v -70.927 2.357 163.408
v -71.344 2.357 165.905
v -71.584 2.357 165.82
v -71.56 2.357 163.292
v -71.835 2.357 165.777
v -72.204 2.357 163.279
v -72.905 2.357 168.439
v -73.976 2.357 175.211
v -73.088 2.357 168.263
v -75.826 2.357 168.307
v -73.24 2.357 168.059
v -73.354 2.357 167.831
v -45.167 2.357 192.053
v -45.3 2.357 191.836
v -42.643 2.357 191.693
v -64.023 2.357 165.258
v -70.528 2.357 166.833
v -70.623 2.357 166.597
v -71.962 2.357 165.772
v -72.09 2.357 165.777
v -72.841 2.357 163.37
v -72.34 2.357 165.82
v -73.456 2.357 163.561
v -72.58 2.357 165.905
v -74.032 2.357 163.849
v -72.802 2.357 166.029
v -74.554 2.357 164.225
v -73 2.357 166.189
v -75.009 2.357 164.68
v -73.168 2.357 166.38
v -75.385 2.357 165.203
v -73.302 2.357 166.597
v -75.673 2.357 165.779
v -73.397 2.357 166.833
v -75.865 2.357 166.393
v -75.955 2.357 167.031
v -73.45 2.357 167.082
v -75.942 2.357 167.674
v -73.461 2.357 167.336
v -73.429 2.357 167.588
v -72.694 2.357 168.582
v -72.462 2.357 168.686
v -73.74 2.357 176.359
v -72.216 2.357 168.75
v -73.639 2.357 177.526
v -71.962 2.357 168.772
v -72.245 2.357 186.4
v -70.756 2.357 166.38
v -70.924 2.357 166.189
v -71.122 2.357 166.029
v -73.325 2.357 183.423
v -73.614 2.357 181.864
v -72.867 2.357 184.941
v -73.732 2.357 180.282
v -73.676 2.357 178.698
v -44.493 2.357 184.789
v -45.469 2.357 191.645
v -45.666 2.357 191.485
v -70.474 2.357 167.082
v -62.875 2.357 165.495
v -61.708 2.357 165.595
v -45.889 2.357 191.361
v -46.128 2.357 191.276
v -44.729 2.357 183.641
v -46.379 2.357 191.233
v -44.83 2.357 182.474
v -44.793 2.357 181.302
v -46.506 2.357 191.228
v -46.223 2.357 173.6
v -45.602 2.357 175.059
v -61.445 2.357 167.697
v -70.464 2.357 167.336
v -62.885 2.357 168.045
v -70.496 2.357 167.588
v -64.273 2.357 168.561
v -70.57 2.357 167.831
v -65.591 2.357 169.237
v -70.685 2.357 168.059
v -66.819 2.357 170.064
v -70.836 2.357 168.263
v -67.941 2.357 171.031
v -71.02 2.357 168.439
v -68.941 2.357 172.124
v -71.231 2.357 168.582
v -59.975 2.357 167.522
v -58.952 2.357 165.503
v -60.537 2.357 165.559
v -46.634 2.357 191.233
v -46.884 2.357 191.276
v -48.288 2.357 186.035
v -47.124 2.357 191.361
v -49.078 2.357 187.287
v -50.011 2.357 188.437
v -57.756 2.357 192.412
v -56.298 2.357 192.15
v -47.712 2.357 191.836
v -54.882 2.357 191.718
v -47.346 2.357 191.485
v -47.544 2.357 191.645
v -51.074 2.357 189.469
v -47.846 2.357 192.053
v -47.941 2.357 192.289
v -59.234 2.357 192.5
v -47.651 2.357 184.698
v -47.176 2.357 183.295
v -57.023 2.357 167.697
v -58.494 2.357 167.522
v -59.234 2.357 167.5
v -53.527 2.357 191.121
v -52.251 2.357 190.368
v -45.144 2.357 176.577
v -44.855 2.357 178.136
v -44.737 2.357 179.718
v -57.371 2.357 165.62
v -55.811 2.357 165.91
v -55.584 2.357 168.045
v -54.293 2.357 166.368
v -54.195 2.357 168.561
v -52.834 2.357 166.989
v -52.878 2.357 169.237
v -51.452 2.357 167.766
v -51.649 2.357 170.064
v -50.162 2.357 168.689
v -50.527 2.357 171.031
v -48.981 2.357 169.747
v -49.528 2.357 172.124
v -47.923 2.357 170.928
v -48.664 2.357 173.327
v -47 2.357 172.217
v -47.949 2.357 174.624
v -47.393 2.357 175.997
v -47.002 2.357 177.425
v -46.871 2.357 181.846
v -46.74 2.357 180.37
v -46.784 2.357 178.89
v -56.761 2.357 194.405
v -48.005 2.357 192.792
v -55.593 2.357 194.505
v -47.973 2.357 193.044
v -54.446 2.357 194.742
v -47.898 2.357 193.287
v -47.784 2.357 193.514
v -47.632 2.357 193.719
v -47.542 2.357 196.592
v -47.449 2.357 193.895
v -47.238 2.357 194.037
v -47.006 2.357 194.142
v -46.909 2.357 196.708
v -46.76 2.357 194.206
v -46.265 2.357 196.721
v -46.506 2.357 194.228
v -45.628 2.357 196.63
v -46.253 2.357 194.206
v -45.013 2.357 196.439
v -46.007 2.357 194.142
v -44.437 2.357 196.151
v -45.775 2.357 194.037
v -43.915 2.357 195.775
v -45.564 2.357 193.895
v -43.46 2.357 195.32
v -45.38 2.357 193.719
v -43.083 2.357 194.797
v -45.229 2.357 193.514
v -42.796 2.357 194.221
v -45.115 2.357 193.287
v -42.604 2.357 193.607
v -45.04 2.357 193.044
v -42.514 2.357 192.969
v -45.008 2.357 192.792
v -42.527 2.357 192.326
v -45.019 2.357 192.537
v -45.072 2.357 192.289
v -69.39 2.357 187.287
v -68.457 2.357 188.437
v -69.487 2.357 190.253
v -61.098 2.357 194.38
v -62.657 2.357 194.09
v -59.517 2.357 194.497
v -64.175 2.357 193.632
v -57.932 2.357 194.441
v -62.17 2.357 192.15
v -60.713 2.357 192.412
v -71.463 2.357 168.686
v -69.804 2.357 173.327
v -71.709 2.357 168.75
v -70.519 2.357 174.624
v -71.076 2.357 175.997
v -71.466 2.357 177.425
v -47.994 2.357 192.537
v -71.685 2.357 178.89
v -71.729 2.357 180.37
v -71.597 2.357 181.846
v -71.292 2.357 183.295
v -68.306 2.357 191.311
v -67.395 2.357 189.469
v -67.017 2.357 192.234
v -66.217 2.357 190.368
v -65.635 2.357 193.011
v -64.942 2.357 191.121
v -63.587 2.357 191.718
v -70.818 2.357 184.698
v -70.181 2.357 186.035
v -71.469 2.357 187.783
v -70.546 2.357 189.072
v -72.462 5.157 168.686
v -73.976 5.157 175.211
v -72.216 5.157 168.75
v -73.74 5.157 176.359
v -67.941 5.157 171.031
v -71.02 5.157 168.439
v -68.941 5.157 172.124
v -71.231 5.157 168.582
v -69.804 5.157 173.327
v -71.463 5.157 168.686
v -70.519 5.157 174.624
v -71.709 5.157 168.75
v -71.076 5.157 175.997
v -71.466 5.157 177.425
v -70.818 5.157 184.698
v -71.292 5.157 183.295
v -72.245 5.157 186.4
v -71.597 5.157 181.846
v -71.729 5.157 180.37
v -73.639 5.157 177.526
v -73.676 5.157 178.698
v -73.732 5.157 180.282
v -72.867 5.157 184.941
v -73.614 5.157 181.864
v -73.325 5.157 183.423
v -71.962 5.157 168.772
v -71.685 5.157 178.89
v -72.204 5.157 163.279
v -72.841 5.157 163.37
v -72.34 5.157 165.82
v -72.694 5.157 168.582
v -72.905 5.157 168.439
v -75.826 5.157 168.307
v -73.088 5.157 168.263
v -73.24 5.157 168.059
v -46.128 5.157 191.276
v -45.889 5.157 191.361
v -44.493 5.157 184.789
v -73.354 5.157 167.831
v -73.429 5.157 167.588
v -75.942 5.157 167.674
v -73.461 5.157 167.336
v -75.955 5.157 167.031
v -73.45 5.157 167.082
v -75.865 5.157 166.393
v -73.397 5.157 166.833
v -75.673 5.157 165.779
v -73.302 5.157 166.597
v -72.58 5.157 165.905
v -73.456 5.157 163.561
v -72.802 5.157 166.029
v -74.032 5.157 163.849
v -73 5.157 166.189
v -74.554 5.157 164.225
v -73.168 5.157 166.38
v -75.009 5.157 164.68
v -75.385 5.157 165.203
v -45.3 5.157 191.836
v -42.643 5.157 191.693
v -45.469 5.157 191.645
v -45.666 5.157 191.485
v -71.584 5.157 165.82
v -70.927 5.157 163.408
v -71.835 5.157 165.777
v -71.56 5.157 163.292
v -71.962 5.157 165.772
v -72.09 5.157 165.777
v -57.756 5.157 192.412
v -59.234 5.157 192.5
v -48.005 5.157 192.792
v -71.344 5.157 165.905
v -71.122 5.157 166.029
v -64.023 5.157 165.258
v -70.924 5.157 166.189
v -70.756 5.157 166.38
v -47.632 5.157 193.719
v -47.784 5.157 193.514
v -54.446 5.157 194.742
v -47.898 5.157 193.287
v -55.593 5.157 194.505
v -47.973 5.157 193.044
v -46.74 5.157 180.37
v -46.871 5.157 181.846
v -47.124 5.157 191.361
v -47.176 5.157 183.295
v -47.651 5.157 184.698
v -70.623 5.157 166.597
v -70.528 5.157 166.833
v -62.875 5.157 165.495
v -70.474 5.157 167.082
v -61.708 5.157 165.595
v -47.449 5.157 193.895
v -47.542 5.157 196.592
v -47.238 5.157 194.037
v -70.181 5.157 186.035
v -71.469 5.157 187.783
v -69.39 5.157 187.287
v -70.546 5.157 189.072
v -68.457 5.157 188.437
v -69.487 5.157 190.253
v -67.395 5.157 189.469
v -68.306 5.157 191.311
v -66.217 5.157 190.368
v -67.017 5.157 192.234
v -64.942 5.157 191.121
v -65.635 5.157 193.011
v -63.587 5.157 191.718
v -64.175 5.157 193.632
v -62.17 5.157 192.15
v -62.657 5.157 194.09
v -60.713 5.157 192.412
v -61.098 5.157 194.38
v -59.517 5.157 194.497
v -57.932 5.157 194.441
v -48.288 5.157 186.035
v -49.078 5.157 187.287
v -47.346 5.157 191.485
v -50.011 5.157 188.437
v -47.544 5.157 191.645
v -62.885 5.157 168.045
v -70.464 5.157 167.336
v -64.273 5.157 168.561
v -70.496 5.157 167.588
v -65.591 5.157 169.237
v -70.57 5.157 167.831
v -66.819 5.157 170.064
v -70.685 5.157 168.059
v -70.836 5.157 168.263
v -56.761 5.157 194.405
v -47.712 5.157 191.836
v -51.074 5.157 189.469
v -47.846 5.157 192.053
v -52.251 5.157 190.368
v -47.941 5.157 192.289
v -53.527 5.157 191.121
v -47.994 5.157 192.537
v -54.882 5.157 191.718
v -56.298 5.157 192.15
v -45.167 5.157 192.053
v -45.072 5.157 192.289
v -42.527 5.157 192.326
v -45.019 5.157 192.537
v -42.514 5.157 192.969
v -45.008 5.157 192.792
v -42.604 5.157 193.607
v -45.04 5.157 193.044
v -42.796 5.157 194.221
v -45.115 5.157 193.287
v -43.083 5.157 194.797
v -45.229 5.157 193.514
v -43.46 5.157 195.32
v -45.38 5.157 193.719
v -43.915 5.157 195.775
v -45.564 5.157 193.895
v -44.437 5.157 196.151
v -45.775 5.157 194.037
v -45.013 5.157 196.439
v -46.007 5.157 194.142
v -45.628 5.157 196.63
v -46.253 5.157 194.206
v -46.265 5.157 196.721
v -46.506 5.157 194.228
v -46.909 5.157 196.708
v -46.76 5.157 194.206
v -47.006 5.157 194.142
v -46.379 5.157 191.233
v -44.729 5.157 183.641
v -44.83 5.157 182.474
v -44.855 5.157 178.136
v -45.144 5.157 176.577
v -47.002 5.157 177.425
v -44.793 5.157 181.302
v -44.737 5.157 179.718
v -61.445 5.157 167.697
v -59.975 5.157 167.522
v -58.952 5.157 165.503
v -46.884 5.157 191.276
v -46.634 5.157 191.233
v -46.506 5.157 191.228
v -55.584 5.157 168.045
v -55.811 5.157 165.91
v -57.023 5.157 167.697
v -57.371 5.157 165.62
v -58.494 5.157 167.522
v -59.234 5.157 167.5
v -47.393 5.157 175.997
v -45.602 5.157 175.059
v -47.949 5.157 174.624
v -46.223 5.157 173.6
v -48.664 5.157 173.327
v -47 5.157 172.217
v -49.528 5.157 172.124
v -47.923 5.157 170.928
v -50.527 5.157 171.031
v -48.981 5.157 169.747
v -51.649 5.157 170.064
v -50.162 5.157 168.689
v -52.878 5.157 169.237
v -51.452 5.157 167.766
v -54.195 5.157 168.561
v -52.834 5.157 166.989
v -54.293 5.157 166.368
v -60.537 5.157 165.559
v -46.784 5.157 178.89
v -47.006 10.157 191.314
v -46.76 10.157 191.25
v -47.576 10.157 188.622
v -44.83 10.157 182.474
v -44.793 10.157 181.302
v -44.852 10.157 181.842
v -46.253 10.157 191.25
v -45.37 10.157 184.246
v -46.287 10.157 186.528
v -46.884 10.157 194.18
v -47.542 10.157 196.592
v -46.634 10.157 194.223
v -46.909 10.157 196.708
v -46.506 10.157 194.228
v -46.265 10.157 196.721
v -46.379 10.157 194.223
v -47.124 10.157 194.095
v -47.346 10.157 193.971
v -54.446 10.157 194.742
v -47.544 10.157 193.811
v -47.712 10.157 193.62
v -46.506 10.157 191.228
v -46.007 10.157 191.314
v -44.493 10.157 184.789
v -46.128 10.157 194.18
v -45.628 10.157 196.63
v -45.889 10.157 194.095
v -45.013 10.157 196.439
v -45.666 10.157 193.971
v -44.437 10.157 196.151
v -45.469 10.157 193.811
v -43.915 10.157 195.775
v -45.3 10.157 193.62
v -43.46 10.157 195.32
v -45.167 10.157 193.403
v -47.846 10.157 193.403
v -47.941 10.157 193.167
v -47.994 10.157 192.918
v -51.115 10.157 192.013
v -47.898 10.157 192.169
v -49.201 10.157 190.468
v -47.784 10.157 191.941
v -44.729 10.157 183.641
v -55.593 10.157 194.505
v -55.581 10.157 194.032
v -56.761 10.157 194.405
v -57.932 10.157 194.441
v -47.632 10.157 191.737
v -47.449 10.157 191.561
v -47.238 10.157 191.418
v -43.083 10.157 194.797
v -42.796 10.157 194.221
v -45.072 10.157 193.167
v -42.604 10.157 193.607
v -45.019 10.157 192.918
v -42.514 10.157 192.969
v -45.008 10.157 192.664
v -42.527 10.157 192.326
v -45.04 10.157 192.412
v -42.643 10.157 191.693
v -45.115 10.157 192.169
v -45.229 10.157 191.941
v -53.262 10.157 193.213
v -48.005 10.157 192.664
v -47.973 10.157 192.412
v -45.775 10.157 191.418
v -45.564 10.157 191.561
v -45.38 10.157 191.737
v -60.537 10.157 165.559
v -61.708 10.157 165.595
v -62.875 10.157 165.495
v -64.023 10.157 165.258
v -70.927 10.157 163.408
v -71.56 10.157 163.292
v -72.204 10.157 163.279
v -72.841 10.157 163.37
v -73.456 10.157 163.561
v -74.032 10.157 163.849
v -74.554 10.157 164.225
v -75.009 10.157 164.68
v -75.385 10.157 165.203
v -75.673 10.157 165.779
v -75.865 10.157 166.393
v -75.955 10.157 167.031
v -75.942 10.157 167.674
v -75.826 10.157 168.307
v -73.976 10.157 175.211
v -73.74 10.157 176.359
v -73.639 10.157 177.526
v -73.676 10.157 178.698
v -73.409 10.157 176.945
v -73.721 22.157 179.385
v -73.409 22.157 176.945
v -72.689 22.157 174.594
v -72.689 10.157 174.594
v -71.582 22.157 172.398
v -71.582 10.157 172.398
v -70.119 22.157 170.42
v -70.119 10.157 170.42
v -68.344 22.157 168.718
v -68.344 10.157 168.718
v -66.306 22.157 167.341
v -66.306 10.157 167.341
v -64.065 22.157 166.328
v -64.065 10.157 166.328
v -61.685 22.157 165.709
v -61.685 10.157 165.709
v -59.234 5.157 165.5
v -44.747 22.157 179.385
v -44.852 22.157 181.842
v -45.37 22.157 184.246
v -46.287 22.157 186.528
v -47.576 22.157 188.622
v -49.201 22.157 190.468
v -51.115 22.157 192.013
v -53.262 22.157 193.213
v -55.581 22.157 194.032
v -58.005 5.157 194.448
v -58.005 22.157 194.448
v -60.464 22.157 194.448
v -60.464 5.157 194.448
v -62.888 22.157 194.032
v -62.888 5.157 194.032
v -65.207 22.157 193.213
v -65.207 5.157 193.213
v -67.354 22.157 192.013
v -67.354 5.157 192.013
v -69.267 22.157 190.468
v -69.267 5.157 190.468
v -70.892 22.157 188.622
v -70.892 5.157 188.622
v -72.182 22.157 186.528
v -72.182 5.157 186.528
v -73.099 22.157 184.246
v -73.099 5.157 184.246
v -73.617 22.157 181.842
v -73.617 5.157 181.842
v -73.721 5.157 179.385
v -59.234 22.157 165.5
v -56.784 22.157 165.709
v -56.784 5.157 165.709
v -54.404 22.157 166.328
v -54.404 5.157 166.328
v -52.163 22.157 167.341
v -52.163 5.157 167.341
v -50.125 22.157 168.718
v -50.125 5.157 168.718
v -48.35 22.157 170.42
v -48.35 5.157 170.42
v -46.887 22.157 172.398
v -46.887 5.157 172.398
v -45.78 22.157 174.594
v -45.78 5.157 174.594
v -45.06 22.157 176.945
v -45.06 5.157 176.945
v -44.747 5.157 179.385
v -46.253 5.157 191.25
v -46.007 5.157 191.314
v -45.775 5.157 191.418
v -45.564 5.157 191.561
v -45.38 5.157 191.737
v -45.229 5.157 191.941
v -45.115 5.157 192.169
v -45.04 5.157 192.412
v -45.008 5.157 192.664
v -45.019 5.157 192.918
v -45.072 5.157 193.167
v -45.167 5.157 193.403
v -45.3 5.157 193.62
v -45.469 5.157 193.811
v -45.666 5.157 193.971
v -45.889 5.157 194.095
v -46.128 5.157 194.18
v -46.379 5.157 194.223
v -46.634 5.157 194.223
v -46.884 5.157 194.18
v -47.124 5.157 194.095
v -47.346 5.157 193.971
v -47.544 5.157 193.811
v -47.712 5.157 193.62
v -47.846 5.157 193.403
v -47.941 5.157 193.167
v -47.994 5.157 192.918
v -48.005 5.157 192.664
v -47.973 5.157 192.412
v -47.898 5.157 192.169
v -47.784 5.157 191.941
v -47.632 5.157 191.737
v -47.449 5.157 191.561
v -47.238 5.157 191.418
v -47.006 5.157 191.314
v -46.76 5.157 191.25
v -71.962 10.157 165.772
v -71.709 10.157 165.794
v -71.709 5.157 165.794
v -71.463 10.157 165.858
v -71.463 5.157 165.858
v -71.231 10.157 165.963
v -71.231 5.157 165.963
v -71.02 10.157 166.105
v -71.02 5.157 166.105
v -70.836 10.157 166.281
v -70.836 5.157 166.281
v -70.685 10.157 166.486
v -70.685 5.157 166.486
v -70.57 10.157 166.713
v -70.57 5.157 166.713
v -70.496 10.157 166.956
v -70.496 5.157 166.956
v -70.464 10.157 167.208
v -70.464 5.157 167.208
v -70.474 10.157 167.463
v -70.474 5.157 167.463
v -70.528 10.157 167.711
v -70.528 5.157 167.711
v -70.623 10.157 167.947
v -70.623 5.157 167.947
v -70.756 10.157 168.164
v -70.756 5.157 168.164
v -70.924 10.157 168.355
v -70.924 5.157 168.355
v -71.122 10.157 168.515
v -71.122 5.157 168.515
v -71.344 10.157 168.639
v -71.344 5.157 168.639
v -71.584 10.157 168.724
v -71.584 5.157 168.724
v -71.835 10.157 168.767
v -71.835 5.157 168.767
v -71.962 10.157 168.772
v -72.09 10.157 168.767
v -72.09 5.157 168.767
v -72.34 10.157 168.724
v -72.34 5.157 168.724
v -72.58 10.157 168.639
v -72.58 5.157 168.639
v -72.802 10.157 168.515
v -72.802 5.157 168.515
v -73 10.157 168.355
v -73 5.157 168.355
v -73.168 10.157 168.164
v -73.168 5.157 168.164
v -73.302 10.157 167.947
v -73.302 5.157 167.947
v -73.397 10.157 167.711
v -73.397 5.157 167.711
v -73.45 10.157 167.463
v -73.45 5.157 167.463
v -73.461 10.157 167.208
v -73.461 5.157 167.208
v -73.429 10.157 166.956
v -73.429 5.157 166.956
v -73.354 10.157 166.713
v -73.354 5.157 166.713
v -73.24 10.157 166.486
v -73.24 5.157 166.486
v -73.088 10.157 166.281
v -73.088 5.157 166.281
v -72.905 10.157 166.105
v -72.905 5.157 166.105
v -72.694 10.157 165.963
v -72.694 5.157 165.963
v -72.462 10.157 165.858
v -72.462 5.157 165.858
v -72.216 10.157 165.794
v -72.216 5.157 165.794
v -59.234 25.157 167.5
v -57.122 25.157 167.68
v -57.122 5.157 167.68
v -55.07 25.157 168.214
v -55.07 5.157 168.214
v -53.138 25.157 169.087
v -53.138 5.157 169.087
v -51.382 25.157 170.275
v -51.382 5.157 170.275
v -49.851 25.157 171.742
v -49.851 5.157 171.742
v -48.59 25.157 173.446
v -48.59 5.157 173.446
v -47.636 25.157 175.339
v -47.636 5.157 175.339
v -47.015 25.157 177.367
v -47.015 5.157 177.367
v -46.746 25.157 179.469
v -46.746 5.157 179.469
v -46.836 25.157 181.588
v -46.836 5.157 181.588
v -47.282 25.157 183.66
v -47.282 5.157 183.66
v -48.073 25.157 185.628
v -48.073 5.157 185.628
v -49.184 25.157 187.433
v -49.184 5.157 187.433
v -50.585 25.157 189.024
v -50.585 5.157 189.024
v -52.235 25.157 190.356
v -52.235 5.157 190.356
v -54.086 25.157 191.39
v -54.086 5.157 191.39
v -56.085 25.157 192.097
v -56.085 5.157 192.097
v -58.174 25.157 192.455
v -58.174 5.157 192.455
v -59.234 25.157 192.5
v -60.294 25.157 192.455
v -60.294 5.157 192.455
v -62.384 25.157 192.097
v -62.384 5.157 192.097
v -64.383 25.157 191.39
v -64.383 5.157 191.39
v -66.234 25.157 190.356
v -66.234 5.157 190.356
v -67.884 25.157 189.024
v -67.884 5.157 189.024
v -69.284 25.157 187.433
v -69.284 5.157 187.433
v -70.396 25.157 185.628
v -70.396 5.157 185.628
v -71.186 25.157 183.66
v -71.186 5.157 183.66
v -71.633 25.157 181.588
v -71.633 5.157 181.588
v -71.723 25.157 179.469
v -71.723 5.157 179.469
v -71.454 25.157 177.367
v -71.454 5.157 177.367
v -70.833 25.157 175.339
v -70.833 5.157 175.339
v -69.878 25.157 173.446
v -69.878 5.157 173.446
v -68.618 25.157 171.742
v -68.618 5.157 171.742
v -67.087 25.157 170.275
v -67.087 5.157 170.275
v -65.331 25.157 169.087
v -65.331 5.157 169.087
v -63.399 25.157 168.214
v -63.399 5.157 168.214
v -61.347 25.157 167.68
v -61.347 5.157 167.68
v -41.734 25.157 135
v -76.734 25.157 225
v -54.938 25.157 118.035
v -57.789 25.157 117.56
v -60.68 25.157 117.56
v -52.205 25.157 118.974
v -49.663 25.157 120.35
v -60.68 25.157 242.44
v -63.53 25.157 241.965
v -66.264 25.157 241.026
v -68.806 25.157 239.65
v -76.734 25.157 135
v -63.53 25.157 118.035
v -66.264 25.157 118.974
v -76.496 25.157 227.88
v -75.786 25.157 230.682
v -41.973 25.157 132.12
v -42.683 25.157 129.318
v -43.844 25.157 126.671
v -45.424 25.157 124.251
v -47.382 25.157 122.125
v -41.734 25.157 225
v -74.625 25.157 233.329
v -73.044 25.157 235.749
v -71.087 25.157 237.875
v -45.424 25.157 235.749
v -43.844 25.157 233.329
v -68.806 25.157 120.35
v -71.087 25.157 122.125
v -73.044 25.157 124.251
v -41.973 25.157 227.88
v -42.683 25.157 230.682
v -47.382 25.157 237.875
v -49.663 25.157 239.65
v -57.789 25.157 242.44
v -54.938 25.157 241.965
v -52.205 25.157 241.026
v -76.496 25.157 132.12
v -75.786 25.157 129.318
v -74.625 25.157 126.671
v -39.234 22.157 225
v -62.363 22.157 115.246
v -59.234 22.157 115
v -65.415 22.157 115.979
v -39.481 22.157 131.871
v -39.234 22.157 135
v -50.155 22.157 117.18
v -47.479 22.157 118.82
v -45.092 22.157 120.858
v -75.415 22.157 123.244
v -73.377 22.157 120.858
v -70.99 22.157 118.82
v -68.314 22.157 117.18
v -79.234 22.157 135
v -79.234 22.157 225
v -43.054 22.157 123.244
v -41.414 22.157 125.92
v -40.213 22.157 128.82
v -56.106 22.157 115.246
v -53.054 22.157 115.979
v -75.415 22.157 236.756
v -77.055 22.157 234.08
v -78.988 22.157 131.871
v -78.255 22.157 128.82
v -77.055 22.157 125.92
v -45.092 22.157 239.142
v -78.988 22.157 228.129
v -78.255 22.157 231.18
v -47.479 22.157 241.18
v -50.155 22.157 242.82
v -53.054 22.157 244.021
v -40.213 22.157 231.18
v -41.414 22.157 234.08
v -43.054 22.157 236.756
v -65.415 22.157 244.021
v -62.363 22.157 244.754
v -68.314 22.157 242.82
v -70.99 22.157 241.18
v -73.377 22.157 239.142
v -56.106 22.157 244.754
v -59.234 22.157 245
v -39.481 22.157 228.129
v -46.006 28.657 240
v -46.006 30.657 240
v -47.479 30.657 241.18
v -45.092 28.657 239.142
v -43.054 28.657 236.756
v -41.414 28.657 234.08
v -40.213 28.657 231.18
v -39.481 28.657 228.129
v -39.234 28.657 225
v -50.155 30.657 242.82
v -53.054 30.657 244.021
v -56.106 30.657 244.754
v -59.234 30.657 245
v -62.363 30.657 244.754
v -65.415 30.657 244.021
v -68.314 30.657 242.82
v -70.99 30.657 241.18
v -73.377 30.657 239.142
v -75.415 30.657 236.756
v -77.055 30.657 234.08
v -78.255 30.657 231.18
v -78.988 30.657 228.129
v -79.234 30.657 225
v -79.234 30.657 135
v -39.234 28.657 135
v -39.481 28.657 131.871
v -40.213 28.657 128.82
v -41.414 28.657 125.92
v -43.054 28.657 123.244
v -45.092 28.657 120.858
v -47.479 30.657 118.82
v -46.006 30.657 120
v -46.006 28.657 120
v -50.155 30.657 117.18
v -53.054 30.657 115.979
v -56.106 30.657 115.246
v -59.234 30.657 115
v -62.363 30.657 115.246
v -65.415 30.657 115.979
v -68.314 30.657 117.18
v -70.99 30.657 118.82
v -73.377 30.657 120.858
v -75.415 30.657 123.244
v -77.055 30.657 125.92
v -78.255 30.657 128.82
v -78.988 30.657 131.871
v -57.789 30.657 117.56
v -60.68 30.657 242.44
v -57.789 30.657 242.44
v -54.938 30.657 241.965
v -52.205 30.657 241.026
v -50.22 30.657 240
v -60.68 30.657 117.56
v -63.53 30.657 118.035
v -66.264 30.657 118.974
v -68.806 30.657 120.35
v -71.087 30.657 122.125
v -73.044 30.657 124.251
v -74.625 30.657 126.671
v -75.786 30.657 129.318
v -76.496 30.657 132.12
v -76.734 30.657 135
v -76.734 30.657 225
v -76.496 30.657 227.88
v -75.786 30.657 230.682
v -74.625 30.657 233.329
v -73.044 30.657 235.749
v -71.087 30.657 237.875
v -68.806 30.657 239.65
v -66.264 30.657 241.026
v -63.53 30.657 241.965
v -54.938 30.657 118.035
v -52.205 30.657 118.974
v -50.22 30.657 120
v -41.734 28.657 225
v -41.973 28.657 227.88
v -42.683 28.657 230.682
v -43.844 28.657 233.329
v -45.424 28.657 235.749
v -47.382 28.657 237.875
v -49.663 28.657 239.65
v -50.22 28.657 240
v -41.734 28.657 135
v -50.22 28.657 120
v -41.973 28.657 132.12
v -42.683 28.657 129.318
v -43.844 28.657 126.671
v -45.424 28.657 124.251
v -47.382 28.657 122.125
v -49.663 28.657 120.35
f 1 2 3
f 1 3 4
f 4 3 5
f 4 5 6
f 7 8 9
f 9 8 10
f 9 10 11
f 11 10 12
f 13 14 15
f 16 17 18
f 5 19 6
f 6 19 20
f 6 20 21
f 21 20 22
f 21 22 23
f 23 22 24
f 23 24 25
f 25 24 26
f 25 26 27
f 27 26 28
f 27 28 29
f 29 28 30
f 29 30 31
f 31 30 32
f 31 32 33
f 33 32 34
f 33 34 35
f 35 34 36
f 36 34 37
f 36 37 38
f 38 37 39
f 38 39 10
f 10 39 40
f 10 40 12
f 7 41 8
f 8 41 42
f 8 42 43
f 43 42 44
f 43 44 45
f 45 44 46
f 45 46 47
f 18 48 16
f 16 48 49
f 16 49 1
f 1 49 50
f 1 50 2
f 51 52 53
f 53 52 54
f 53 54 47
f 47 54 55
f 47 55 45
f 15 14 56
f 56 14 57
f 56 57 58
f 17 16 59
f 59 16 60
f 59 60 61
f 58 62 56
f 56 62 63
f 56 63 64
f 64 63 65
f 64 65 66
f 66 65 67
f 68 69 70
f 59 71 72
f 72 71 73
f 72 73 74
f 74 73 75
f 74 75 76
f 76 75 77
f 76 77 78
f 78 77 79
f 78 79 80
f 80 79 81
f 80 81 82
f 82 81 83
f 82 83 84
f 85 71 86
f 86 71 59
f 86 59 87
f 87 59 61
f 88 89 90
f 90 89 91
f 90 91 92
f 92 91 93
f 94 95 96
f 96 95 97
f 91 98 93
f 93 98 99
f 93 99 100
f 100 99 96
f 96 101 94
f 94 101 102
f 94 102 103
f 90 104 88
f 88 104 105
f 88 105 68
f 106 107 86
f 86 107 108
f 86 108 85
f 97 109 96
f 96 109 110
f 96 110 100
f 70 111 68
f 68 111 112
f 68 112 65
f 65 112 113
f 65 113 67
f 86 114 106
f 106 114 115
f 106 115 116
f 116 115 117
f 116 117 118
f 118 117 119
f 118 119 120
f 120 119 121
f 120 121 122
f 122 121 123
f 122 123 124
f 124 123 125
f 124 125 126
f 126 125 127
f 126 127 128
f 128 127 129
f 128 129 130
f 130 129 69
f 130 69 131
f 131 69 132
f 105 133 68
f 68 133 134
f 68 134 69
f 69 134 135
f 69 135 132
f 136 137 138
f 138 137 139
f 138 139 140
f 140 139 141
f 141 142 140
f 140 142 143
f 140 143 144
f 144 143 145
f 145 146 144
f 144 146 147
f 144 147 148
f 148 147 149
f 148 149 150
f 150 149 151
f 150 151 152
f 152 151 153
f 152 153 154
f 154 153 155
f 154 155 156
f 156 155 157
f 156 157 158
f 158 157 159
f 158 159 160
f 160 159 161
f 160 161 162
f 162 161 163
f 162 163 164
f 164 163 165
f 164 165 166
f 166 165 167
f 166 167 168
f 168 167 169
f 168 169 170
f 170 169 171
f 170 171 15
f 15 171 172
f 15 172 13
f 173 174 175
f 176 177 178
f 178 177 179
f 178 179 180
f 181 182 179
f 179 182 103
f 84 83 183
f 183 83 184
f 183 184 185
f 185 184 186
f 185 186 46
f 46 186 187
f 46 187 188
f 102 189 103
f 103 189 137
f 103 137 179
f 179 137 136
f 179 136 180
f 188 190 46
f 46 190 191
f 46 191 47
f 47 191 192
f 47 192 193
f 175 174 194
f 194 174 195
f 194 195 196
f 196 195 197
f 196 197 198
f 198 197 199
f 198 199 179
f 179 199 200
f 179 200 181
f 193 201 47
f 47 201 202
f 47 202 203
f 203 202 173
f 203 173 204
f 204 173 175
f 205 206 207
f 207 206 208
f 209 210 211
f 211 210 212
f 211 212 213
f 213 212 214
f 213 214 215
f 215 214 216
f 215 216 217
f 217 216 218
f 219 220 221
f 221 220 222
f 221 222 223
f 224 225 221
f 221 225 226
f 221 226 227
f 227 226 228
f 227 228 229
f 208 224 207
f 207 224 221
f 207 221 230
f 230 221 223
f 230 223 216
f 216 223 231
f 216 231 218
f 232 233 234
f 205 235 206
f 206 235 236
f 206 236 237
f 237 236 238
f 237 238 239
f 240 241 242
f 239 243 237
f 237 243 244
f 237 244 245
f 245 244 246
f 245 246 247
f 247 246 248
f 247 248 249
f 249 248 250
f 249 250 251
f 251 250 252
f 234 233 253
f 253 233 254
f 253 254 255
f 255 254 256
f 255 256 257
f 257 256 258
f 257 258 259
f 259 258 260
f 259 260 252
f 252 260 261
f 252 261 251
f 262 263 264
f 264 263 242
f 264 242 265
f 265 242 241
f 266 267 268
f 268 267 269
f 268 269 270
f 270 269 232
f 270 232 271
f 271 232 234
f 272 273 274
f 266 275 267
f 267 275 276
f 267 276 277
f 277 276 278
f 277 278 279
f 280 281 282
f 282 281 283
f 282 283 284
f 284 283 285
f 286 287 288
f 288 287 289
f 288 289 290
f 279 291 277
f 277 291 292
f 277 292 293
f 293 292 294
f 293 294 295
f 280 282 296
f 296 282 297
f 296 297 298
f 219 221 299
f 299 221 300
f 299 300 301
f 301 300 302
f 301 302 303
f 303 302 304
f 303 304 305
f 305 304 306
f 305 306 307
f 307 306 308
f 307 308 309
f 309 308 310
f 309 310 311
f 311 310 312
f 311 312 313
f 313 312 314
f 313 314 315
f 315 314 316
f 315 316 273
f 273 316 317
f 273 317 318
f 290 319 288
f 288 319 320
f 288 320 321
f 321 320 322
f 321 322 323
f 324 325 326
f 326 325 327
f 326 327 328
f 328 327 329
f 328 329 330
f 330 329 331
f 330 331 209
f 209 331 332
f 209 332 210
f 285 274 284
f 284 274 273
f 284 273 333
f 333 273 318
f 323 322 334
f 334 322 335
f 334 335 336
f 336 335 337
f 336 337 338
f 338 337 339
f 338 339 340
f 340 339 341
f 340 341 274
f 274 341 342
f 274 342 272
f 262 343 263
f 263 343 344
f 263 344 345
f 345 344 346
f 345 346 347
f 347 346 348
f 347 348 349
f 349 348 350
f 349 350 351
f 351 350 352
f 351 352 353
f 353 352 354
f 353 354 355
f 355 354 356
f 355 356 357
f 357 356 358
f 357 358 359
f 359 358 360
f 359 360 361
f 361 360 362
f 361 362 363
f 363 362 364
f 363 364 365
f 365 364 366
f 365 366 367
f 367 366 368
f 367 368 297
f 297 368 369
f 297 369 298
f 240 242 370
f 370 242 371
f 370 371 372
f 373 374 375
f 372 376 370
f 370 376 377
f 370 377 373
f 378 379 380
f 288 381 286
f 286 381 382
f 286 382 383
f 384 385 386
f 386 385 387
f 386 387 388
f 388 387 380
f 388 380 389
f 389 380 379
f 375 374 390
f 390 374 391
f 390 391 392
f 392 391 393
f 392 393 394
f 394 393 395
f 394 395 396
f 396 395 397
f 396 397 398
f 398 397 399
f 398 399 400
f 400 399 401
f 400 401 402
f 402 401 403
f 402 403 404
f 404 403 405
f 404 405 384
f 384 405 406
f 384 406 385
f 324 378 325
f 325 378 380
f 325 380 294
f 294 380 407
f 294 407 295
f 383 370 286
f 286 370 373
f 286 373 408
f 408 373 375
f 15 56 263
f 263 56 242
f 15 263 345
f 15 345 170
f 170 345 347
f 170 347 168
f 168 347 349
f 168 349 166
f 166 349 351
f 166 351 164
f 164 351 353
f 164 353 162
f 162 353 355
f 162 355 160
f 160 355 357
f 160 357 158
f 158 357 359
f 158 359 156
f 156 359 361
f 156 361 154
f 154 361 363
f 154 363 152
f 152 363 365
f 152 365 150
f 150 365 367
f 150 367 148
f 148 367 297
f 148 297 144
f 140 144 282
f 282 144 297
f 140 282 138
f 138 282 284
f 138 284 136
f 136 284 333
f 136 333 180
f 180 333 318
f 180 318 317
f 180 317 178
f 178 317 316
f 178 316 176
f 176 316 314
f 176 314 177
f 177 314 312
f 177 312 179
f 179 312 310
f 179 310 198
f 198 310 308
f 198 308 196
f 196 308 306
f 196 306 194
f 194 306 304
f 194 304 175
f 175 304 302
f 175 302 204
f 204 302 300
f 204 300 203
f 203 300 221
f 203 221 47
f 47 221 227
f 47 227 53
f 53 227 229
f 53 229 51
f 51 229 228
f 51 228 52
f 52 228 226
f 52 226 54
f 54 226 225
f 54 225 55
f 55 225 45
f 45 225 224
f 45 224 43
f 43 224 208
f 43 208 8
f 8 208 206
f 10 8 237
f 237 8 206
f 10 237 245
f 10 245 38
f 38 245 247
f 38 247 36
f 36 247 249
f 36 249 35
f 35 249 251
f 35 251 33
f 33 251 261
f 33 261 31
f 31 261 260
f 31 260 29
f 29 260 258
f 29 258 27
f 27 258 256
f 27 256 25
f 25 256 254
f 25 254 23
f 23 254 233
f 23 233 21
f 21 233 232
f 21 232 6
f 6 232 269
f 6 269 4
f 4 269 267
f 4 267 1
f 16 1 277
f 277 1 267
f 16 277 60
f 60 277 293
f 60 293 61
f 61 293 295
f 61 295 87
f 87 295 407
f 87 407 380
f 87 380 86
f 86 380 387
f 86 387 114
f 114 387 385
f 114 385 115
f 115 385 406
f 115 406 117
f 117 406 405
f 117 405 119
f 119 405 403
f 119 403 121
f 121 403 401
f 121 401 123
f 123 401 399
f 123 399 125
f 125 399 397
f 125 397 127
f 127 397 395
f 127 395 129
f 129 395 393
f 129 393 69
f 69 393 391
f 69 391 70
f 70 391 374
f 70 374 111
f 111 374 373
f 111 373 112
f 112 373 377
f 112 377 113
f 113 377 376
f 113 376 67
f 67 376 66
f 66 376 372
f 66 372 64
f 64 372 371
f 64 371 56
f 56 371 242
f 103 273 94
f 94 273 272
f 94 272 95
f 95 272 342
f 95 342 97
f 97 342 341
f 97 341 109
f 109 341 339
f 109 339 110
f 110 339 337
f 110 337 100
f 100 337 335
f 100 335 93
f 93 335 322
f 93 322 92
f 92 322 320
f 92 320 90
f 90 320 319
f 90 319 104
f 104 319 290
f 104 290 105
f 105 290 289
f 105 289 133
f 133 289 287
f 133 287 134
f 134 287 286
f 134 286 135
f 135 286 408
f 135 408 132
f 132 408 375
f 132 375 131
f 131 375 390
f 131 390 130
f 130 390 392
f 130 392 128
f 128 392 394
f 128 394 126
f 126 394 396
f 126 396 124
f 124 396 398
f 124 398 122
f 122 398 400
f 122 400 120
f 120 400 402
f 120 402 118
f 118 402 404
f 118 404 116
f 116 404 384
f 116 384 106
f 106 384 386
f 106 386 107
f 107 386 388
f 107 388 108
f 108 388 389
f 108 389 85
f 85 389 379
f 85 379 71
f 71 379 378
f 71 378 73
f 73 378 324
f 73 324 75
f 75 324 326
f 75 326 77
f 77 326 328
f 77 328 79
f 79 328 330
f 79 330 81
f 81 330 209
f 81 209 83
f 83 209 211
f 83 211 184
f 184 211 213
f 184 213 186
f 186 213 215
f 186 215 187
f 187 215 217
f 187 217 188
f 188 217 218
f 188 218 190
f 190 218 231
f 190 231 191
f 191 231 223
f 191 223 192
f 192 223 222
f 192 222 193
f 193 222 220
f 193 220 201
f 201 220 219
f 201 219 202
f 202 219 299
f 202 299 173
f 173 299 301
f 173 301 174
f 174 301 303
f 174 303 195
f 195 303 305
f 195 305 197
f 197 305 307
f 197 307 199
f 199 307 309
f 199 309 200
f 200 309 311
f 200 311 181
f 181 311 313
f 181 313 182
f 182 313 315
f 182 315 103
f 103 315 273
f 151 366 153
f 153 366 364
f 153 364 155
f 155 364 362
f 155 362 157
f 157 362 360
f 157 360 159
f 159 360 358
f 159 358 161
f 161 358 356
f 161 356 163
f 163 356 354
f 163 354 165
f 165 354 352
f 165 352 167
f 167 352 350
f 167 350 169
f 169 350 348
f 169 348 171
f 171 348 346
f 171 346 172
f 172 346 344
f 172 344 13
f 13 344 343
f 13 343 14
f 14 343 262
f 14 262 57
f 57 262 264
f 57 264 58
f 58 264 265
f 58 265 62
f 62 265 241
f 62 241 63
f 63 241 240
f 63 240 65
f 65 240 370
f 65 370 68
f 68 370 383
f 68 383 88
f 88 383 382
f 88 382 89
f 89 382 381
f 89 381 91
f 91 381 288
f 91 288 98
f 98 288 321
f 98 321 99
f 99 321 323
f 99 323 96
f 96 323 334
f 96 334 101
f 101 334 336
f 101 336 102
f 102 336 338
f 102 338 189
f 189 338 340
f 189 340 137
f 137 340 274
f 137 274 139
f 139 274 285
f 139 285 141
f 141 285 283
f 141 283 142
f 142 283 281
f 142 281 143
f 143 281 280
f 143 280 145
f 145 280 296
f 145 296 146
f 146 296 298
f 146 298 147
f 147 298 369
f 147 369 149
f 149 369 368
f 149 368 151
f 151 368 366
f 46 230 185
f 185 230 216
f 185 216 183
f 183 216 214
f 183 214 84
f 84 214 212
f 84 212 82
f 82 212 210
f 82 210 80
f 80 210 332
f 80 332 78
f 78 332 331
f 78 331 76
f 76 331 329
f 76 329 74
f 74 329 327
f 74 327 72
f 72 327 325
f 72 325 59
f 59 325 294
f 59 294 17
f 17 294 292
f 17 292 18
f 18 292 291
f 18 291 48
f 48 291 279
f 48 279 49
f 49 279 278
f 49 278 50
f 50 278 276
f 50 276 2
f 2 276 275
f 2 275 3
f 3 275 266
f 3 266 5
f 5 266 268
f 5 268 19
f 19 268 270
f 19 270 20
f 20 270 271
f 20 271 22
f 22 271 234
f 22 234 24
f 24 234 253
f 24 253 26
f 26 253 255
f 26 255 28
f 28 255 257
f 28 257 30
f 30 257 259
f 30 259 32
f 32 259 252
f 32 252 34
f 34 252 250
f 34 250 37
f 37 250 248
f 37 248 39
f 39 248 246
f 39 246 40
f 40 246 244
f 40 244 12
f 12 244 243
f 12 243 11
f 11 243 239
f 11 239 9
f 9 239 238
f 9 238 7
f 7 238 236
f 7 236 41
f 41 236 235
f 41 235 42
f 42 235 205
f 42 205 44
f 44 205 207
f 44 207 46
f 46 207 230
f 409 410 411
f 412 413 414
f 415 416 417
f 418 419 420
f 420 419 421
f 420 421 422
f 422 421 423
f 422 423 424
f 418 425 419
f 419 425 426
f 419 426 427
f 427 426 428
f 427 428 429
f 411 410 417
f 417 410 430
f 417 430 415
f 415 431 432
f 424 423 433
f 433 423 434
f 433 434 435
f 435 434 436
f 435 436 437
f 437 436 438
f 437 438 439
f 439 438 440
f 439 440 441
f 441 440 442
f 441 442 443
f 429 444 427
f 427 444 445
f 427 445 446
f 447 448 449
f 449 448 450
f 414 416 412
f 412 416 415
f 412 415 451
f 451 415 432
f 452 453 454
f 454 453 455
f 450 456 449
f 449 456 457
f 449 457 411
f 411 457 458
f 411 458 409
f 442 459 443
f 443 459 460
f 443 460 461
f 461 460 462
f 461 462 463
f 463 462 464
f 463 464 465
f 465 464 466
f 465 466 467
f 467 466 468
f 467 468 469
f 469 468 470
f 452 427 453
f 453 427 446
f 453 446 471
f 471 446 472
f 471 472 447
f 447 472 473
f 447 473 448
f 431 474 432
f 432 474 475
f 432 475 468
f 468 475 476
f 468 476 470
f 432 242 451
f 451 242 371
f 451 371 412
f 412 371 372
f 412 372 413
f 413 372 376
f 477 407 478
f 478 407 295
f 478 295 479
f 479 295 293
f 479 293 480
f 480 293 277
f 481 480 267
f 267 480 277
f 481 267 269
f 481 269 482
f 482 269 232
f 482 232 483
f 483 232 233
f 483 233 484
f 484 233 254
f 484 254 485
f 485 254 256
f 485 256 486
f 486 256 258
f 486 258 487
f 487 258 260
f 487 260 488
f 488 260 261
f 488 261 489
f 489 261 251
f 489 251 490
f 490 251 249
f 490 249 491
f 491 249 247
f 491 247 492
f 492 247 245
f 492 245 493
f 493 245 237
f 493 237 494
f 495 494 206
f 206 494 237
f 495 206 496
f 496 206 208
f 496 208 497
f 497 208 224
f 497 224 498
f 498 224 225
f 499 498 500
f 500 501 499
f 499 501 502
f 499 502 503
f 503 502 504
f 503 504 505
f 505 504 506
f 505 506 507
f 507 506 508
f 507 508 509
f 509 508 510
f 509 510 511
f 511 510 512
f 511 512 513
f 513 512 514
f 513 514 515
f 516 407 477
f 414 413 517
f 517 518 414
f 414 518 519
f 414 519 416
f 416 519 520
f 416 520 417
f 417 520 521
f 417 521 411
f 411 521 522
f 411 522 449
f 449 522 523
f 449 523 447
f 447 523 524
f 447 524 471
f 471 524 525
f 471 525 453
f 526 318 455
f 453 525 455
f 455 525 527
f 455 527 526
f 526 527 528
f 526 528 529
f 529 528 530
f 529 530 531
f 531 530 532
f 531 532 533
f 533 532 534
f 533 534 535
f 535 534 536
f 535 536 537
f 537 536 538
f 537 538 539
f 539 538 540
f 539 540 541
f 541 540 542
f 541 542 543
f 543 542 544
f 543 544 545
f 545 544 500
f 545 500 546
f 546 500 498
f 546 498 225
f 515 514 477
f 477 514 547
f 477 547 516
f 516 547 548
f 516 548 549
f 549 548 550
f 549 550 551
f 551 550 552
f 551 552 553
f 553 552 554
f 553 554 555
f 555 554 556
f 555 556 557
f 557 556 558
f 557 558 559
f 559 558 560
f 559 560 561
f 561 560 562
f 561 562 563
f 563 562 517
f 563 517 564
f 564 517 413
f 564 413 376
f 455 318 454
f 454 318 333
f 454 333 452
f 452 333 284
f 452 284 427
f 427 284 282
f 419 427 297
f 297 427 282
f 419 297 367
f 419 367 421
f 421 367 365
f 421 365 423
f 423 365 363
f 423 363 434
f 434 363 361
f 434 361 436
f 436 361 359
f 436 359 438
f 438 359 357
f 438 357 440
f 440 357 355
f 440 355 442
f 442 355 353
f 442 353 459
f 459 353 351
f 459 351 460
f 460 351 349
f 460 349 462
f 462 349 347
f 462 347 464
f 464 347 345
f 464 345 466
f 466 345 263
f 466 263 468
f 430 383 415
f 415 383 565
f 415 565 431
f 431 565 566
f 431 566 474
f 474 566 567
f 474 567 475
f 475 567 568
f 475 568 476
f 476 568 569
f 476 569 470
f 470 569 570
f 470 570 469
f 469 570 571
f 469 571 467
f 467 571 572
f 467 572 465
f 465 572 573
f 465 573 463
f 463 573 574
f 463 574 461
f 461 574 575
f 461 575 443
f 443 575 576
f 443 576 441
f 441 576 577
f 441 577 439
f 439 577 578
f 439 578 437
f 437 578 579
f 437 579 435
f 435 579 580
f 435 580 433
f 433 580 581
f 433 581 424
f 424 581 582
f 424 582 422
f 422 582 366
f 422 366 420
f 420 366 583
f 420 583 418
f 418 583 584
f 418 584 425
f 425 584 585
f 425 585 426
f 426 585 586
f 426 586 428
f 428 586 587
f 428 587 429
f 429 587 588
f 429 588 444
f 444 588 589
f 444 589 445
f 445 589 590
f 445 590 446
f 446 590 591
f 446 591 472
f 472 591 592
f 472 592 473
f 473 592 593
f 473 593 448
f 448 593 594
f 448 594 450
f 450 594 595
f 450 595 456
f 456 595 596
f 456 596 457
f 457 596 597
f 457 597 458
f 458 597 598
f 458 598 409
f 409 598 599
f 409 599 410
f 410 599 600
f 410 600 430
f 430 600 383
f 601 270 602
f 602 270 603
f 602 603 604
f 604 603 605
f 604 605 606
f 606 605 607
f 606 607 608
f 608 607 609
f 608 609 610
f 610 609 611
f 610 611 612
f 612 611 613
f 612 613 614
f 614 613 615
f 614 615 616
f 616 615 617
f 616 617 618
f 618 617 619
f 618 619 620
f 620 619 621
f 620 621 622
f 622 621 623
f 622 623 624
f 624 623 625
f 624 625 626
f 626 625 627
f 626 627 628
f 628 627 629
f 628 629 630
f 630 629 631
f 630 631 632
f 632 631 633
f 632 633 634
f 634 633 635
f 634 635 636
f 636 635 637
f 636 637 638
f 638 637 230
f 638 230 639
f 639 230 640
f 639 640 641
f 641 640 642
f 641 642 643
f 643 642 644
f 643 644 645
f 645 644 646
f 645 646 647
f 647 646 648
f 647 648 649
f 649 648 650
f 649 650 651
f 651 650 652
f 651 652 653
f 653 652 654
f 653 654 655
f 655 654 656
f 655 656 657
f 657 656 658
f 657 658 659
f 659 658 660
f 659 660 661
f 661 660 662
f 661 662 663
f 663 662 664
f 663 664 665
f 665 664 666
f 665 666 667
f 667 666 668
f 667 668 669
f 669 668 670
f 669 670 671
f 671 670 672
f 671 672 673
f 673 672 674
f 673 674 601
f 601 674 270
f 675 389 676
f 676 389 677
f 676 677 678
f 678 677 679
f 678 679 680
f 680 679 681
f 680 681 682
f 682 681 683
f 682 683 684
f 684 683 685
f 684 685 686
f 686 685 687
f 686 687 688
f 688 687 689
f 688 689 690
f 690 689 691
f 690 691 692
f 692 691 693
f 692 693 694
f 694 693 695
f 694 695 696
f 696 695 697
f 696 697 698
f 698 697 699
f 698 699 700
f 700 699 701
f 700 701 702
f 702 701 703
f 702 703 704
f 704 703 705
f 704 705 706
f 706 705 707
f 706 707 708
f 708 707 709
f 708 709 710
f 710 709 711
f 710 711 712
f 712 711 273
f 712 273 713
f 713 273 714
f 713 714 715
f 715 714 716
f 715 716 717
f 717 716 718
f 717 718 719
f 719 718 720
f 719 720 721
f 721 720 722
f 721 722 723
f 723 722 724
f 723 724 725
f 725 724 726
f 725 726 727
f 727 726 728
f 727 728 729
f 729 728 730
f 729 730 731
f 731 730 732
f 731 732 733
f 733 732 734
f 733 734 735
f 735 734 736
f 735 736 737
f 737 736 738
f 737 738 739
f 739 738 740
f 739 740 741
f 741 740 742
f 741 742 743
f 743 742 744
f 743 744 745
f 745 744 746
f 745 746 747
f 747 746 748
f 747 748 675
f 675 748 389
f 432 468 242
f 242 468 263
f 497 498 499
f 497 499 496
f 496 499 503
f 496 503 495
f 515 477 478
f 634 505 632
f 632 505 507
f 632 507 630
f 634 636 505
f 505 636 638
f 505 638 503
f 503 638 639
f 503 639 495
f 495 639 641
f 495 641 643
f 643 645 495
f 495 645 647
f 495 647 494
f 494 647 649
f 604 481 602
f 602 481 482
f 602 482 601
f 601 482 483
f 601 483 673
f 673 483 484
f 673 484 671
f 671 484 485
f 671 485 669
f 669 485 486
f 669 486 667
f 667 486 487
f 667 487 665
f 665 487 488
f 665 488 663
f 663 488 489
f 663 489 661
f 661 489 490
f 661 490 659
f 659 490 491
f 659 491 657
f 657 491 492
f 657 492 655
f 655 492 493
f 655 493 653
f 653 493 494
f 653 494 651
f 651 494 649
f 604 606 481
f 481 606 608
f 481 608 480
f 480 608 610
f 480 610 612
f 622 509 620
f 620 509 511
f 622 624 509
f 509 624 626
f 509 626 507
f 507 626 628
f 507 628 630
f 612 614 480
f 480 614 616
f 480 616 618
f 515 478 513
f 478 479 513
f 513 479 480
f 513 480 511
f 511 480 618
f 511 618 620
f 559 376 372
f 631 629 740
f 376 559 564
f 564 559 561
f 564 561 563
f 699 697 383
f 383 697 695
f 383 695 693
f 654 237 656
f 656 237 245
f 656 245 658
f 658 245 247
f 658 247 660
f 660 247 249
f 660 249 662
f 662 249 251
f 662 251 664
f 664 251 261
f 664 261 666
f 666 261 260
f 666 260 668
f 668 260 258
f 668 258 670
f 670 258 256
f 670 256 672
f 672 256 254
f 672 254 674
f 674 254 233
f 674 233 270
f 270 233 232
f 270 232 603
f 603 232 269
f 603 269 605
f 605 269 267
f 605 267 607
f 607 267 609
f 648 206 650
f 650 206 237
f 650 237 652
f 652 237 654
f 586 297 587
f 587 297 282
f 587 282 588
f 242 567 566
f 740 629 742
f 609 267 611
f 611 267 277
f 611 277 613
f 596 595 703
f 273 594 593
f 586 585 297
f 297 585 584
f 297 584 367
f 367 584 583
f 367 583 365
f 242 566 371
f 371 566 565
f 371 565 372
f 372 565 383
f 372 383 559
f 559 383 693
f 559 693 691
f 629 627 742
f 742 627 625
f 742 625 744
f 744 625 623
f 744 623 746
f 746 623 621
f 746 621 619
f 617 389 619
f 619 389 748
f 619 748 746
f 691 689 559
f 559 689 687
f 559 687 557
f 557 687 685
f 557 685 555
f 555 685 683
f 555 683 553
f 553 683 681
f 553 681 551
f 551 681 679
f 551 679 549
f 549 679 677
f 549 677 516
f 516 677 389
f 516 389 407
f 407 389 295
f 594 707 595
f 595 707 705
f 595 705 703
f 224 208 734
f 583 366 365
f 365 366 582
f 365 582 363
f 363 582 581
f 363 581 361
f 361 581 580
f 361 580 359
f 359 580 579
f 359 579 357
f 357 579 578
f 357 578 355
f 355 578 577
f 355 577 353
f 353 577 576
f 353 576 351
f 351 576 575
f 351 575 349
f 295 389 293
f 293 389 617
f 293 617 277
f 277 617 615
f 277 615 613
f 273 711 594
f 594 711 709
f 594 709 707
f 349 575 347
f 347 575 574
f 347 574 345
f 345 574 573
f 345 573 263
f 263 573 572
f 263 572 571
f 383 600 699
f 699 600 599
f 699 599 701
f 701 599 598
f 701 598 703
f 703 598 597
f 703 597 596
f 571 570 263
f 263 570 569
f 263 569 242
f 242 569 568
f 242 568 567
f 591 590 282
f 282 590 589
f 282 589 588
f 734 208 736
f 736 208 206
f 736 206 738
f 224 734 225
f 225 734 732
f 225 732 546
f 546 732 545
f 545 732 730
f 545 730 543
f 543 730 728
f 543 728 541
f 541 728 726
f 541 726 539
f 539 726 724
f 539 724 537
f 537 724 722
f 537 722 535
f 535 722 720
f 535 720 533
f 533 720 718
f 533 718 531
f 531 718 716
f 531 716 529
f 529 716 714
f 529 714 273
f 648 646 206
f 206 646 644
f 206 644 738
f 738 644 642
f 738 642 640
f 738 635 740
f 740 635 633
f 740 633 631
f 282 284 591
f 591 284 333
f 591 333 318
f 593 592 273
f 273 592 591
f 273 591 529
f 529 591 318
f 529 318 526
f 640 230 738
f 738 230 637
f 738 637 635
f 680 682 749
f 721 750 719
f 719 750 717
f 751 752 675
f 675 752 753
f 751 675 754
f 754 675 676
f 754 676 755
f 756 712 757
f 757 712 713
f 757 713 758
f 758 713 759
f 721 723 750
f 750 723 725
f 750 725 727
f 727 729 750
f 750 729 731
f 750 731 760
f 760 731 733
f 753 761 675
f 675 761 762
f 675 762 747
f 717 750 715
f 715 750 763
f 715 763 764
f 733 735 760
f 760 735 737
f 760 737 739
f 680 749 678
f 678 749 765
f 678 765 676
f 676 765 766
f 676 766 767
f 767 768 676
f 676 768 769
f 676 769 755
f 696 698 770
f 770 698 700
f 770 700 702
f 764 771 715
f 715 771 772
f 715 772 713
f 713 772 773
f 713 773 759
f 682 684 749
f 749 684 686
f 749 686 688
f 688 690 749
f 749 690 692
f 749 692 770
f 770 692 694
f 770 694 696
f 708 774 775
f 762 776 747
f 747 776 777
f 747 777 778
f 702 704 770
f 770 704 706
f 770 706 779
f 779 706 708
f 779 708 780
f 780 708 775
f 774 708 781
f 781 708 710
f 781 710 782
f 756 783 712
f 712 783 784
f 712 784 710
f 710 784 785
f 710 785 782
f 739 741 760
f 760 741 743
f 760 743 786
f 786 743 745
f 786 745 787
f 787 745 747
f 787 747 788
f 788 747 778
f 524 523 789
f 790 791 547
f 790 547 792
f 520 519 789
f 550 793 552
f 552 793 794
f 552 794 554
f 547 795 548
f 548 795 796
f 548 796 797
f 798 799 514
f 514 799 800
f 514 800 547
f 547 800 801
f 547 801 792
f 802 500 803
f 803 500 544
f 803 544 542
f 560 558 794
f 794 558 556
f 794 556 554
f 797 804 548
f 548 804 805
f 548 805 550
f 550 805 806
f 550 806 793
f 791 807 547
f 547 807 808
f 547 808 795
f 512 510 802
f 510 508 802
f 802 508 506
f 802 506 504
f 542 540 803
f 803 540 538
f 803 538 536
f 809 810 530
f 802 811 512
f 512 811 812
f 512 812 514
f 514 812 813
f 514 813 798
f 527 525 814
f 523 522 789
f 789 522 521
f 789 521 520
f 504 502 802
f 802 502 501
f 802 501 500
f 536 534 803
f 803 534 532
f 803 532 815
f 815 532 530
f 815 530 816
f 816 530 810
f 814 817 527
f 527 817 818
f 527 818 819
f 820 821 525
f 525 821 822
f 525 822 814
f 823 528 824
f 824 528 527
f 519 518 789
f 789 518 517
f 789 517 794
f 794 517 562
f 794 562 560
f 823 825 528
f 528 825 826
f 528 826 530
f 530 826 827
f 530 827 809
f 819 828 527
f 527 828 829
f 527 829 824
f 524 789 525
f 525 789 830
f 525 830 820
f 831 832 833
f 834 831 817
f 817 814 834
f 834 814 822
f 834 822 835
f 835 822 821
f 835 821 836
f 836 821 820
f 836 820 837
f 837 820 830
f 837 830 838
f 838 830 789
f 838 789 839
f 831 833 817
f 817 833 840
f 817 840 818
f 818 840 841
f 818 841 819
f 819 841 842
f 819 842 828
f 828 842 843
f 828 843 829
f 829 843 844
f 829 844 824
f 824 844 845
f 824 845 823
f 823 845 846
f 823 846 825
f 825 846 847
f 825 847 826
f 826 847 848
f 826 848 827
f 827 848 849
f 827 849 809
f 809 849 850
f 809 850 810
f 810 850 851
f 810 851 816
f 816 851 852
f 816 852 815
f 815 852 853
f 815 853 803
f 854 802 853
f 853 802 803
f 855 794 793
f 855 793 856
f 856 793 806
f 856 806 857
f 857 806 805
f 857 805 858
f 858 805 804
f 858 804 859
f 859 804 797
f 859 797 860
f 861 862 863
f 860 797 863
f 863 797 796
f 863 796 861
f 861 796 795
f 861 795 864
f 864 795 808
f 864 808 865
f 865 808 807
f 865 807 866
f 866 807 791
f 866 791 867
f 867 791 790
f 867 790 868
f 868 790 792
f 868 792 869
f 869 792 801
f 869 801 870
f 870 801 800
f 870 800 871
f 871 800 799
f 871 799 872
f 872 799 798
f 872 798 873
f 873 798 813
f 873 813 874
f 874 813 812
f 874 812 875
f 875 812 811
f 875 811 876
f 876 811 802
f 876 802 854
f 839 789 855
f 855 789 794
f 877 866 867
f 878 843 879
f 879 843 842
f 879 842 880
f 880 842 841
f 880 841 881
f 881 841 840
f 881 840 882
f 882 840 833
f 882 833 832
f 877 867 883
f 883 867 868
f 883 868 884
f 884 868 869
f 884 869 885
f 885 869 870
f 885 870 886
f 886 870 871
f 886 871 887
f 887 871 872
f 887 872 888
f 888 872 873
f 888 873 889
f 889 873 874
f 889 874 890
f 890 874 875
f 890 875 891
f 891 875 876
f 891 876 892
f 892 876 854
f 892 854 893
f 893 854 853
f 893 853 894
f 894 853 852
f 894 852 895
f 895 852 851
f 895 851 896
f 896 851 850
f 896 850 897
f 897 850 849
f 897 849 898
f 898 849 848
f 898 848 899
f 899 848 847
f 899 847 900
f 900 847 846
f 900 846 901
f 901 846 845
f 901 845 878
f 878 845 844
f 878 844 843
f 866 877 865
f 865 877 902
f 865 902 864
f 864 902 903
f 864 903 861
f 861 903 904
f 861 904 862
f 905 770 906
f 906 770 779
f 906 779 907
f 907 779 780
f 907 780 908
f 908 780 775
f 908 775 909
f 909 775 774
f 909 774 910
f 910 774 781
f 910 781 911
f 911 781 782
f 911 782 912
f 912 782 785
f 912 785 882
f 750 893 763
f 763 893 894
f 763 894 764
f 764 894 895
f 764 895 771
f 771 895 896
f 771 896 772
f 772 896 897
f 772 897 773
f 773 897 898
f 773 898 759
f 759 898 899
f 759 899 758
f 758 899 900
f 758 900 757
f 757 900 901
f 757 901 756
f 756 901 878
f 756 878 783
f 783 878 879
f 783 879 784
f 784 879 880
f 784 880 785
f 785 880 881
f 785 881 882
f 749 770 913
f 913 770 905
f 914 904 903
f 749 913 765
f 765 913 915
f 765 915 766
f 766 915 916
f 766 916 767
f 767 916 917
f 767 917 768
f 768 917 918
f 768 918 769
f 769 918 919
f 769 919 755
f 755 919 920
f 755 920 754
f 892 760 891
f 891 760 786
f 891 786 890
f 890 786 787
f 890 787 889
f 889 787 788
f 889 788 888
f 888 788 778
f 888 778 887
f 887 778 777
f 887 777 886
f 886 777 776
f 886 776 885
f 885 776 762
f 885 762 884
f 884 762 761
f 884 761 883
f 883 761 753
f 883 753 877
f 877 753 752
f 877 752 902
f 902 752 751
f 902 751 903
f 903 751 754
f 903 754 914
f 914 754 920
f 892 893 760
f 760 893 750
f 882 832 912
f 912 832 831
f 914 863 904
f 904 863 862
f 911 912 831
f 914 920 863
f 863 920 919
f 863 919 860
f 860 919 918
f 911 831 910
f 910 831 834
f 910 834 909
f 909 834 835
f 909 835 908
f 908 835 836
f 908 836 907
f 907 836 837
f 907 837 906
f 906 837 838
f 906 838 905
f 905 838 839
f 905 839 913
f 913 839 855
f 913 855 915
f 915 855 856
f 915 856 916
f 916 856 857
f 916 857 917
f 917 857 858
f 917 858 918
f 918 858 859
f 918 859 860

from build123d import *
from build123d.topology import SkipClean

# Parameters (mm, degrees)
SKETCH_1_R          = 12.5
SKETCH_1_R_2        = 1.5
EXTRUDE_1_DEPTH     = 5
SKETCH_2_R          = 12.5
EXTRUDE_2_DEPTH     = 15
EXTRUDE_9_DEPTH     = 5.5
EXTRUDE_START       = 2.8
SKETCH_12_R         = 12.5
SKETCH_12_R_2       = 1.5
EXTRUDE_8_DEPTH     = 2.8
EXTRUDE_START_2     = 3
SKETCH_15_R         = 14.5
EXTRUDE_10_DEPTH    = 3
SKETCH_16_W         = 120
SKETCH_16_H         = 2
CUT_EXTRUDE_1_DEPTH = 16


with BuildPart() as part:
    # 草圖1 → 填料-伸長1 (new body)
    with BuildSketch(Plane(origin=(0, 5.156954032, 0), x_dir=(1, 0, 0), z_dir=(0, 1, 0))):
        with BuildLine():
            ThreePointArc((-44.792972571, -181.302345222), (-44.796491977, -183.058763578), (-44.492647899, -184.788704792))
            Line((-44.492647899, -184.788704792), (-42.64274246, -191.692645881))
            ThreePointArc((-42.64274246, -191.692645881), (-43.67801864, -195.556349186), (-47.541721945, -196.591625367))
            Line((-47.541721945, -196.591625367), (-54.445663034, -194.741719927))
            ThreePointArc((-54.445663034, -194.741719927), (-56.175604248, -194.43787585), (-57.932022604, -194.441395255))
            ThreePointArc((-57.932022604, -194.441395255), (-69.487416154, -190.253048327), (-73.675763082, -178.697654778))
            ThreePointArc((-73.675763082, -178.697654778), (-73.672243676, -176.941236422), (-73.976087754, -175.211295208))
            Line((-73.976087754, -175.211295208), (-75.825993193, -168.307354119))
            ThreePointArc((-75.825993193, -168.307354119), (-74.790717013, -164.443650814), (-70.927013707, -163.408374633))
            Line((-70.927013707, -163.408374633), (-64.023072619, -165.258280073))
            ThreePointArc((-64.023072619, -165.258280073), (-62.293131405, -165.56212415), (-60.536713049, -165.558604745))
            ThreePointArc((-60.536713049, -165.558604745), (-48.981319499, -169.746951673), (-44.792972571, -181.302345222))
        make_face()
        with Locations(Location((-59.234367826, -180, 0), (0, 0, 270))):
            Circle(SKETCH_1_R, mode=Mode.SUBTRACT)
        with Locations(Location((-71.962289888, -167.272077939, 0), (0, 0, 270))):
            Circle(SKETCH_1_R_2, mode=Mode.SUBTRACT)
        with Locations(Location((-46.506445765, -192.727922061, 0), (0, 0, 270))):
            Circle(SKETCH_1_R_2, mode=Mode.SUBTRACT)
    extrude(amount=EXTRUDE_1_DEPTH)

    # 草圖2 → 填料-伸長2 (add)
    with SkipClean():  # the faces are left unmerged after this step: merging them gives an invalid solid
        with BuildSketch(Plane(origin=(0, 10.156954032, 0), x_dir=(1, 0, 0), z_dir=(0, 1, 0))):
            with BuildLine():
                ThreePointArc((-57.932022604, -194.441395255), (-57.58271092, -194.405624924), (-57.234367826, -194.361406616))
                ThreePointArc((-57.234367826, -194.361406616), (-48.736051742, -190.001767813), (-44.792972571, -181.302345222))
                ThreePointArc((-44.792972571, -181.302345222), (-44.749026422, -180.651831572), (-44.734367826, -180))
                ThreePointArc((-44.734367826, -180), (-48.297046399, -170.480283618), (-57.234367826, -165.638593384))
                ThreePointArc((-57.234367826, -165.638593384), (-58.883255177, -165.504251661), (-60.536713049, -165.558604745))
                ThreePointArc((-60.536713049, -165.558604745), (-69.487416154, -169.746951673), (-73.675763082, -178.697654778))
                ThreePointArc((-73.675763082, -178.697654778), (-69.487416154, -190.253048327), (-57.932022604, -194.441395255))
            make_face()
            with Locations(Location((-59.234367826, -180, 0), (0, 0, 270))):
                Circle(SKETCH_2_R, mode=Mode.SUBTRACT)
        extrude(amount=EXTRUDE_2_DEPTH)



with BuildPart() as body_2:
    # 草圖13 → 填料-伸長9 (new body)
    with BuildSketch(Plane(origin=(0, 25.156954032, 0), x_dir=(1, 0, 0), z_dir=(0, 1, 0))):
        with BuildLine():
            Line((-79.234367826, -225), (-79.234367826, -135))
            ThreePointArc((-79.234367826, -135), (-59.234367826, -115), (-39.234367826, -135))
            Line((-39.234367826, -135), (-39.234367826, -225))
            ThreePointArc((-39.234367826, -225), (-59.234367826, -245), (-79.234367826, -225))
        make_face()
        with BuildLine():
            Line((-76.734367826, -225), (-76.734367826, -135))
            ThreePointArc((-76.734367826, -135), (-59.234367826, -117.5), (-41.734367826, -135))
            Line((-41.734367826, -135), (-41.734367826, -225))
            ThreePointArc((-41.734367826, -225), (-59.234367826, -242.5), (-76.734367826, -225))
        make_face(mode=Mode.SUBTRACT)
    extrude(amount=EXTRUDE_9_DEPTH)


with BuildPart() as body_3:
    # 草圖12 → 填料-伸長8 (new body)
    with BuildSketch(Plane.XZ.offset(-5.156954032).offset(EXTRUDE_START)):
        with BuildLine():
            Line((-44.492647899, 184.788704792), (-42.64274246, 191.692645881))
            ThreePointArc((-42.64274246, 191.692645881), (-43.67801864, 195.556349186), (-47.541721945, 196.591625367))
            Line((-47.541721945, 196.591625367), (-54.445663034, 194.741719927))
            ThreePointArc((-54.445663034, 194.741719927), (-56.175604248, 194.43787585), (-57.932022604, 194.441395255))
            ThreePointArc((-57.932022604, 194.441395255), (-69.487416154, 190.253048327), (-73.675763082, 178.697654778))
            ThreePointArc((-73.675763082, 178.697654778), (-73.672243676, 176.941236422), (-73.976087754, 175.211295208))
            Line((-73.976087754, 175.211295208), (-75.825993193, 168.307354119))
            ThreePointArc((-75.825993193, 168.307354119), (-74.790717013, 164.443650814), (-70.927013707, 163.408374633))
            Line((-70.927013707, 163.408374633), (-64.023072619, 165.258280073))
            ThreePointArc((-64.023072619, 165.258280073), (-62.293131405, 165.56212415), (-60.536713049, 165.558604745))
            ThreePointArc((-60.536713049, 165.558604745), (-48.981319499, 169.746951673), (-44.792972571, 181.302345222))
            ThreePointArc((-44.792972571, 181.302345222), (-44.796491977, 183.058763578), (-44.492647899, 184.788704792))
        make_face()
        with Locations(Location((-59.234367826, 180, 0), (0, 0, 270))):
            Circle(SKETCH_12_R, mode=Mode.SUBTRACT)
        with Locations(Location((-71.962289888, 167.272077939, 0), (0, 0, 270))):
            Circle(SKETCH_12_R_2, mode=Mode.SUBTRACT)
        with Locations(Location((-46.506445765, 192.727922061, 0), (0, 0, 270))):
            Circle(SKETCH_12_R_2, mode=Mode.SUBTRACT)
    extrude(amount=-EXTRUDE_8_DEPTH)


with BuildPart() as part_1:
    with SkipClean():  # the faces are left unmerged after this step: merging them gives an invalid solid
        add(part.part)

        add(body_2.part)  # 填料-伸長10 merges body 2
        # 草圖15 → 填料-伸長10 (add)
        with BuildSketch(Plane.XZ.offset(-25.156954032).offset(EXTRUDE_START_2)):
            with BuildLine():
                Line((-79.234367826, 225), (-79.234367826, 135))
                ThreePointArc((-79.234367826, 135), (-59.234367826, 115), (-39.234367826, 135))
                Line((-39.234367826, 135), (-39.234367826, 225))
                ThreePointArc((-39.234367826, 225), (-59.234367826, 245), (-79.234367826, 225))
            make_face()
            with Locations(Location((-59.234367826, 180, 0), (0, 0, 270))):
                Circle(SKETCH_15_R, mode=Mode.SUBTRACT)
        extrude(amount=-EXTRUDE_10_DEPTH)

    # 草圖16 → 除料-伸長1 (cut)
    with SkipClean():  # the faces are left unmerged after this step: merging them gives an invalid solid
        with BuildSketch(Plane(origin=(-39.234367826, 0, 0), x_dir=(0, 0, -1), z_dir=(1, 0, 0))):
            with Locations((-180, 29.656954032)):
                Rectangle(SKETCH_16_W, SKETCH_16_H)
        extrude(amount=-CUT_EXTRUDE_1_DEPTH, mode=Mode.SUBTRACT)


solid = Compound([body_3.part, part_1.part])
